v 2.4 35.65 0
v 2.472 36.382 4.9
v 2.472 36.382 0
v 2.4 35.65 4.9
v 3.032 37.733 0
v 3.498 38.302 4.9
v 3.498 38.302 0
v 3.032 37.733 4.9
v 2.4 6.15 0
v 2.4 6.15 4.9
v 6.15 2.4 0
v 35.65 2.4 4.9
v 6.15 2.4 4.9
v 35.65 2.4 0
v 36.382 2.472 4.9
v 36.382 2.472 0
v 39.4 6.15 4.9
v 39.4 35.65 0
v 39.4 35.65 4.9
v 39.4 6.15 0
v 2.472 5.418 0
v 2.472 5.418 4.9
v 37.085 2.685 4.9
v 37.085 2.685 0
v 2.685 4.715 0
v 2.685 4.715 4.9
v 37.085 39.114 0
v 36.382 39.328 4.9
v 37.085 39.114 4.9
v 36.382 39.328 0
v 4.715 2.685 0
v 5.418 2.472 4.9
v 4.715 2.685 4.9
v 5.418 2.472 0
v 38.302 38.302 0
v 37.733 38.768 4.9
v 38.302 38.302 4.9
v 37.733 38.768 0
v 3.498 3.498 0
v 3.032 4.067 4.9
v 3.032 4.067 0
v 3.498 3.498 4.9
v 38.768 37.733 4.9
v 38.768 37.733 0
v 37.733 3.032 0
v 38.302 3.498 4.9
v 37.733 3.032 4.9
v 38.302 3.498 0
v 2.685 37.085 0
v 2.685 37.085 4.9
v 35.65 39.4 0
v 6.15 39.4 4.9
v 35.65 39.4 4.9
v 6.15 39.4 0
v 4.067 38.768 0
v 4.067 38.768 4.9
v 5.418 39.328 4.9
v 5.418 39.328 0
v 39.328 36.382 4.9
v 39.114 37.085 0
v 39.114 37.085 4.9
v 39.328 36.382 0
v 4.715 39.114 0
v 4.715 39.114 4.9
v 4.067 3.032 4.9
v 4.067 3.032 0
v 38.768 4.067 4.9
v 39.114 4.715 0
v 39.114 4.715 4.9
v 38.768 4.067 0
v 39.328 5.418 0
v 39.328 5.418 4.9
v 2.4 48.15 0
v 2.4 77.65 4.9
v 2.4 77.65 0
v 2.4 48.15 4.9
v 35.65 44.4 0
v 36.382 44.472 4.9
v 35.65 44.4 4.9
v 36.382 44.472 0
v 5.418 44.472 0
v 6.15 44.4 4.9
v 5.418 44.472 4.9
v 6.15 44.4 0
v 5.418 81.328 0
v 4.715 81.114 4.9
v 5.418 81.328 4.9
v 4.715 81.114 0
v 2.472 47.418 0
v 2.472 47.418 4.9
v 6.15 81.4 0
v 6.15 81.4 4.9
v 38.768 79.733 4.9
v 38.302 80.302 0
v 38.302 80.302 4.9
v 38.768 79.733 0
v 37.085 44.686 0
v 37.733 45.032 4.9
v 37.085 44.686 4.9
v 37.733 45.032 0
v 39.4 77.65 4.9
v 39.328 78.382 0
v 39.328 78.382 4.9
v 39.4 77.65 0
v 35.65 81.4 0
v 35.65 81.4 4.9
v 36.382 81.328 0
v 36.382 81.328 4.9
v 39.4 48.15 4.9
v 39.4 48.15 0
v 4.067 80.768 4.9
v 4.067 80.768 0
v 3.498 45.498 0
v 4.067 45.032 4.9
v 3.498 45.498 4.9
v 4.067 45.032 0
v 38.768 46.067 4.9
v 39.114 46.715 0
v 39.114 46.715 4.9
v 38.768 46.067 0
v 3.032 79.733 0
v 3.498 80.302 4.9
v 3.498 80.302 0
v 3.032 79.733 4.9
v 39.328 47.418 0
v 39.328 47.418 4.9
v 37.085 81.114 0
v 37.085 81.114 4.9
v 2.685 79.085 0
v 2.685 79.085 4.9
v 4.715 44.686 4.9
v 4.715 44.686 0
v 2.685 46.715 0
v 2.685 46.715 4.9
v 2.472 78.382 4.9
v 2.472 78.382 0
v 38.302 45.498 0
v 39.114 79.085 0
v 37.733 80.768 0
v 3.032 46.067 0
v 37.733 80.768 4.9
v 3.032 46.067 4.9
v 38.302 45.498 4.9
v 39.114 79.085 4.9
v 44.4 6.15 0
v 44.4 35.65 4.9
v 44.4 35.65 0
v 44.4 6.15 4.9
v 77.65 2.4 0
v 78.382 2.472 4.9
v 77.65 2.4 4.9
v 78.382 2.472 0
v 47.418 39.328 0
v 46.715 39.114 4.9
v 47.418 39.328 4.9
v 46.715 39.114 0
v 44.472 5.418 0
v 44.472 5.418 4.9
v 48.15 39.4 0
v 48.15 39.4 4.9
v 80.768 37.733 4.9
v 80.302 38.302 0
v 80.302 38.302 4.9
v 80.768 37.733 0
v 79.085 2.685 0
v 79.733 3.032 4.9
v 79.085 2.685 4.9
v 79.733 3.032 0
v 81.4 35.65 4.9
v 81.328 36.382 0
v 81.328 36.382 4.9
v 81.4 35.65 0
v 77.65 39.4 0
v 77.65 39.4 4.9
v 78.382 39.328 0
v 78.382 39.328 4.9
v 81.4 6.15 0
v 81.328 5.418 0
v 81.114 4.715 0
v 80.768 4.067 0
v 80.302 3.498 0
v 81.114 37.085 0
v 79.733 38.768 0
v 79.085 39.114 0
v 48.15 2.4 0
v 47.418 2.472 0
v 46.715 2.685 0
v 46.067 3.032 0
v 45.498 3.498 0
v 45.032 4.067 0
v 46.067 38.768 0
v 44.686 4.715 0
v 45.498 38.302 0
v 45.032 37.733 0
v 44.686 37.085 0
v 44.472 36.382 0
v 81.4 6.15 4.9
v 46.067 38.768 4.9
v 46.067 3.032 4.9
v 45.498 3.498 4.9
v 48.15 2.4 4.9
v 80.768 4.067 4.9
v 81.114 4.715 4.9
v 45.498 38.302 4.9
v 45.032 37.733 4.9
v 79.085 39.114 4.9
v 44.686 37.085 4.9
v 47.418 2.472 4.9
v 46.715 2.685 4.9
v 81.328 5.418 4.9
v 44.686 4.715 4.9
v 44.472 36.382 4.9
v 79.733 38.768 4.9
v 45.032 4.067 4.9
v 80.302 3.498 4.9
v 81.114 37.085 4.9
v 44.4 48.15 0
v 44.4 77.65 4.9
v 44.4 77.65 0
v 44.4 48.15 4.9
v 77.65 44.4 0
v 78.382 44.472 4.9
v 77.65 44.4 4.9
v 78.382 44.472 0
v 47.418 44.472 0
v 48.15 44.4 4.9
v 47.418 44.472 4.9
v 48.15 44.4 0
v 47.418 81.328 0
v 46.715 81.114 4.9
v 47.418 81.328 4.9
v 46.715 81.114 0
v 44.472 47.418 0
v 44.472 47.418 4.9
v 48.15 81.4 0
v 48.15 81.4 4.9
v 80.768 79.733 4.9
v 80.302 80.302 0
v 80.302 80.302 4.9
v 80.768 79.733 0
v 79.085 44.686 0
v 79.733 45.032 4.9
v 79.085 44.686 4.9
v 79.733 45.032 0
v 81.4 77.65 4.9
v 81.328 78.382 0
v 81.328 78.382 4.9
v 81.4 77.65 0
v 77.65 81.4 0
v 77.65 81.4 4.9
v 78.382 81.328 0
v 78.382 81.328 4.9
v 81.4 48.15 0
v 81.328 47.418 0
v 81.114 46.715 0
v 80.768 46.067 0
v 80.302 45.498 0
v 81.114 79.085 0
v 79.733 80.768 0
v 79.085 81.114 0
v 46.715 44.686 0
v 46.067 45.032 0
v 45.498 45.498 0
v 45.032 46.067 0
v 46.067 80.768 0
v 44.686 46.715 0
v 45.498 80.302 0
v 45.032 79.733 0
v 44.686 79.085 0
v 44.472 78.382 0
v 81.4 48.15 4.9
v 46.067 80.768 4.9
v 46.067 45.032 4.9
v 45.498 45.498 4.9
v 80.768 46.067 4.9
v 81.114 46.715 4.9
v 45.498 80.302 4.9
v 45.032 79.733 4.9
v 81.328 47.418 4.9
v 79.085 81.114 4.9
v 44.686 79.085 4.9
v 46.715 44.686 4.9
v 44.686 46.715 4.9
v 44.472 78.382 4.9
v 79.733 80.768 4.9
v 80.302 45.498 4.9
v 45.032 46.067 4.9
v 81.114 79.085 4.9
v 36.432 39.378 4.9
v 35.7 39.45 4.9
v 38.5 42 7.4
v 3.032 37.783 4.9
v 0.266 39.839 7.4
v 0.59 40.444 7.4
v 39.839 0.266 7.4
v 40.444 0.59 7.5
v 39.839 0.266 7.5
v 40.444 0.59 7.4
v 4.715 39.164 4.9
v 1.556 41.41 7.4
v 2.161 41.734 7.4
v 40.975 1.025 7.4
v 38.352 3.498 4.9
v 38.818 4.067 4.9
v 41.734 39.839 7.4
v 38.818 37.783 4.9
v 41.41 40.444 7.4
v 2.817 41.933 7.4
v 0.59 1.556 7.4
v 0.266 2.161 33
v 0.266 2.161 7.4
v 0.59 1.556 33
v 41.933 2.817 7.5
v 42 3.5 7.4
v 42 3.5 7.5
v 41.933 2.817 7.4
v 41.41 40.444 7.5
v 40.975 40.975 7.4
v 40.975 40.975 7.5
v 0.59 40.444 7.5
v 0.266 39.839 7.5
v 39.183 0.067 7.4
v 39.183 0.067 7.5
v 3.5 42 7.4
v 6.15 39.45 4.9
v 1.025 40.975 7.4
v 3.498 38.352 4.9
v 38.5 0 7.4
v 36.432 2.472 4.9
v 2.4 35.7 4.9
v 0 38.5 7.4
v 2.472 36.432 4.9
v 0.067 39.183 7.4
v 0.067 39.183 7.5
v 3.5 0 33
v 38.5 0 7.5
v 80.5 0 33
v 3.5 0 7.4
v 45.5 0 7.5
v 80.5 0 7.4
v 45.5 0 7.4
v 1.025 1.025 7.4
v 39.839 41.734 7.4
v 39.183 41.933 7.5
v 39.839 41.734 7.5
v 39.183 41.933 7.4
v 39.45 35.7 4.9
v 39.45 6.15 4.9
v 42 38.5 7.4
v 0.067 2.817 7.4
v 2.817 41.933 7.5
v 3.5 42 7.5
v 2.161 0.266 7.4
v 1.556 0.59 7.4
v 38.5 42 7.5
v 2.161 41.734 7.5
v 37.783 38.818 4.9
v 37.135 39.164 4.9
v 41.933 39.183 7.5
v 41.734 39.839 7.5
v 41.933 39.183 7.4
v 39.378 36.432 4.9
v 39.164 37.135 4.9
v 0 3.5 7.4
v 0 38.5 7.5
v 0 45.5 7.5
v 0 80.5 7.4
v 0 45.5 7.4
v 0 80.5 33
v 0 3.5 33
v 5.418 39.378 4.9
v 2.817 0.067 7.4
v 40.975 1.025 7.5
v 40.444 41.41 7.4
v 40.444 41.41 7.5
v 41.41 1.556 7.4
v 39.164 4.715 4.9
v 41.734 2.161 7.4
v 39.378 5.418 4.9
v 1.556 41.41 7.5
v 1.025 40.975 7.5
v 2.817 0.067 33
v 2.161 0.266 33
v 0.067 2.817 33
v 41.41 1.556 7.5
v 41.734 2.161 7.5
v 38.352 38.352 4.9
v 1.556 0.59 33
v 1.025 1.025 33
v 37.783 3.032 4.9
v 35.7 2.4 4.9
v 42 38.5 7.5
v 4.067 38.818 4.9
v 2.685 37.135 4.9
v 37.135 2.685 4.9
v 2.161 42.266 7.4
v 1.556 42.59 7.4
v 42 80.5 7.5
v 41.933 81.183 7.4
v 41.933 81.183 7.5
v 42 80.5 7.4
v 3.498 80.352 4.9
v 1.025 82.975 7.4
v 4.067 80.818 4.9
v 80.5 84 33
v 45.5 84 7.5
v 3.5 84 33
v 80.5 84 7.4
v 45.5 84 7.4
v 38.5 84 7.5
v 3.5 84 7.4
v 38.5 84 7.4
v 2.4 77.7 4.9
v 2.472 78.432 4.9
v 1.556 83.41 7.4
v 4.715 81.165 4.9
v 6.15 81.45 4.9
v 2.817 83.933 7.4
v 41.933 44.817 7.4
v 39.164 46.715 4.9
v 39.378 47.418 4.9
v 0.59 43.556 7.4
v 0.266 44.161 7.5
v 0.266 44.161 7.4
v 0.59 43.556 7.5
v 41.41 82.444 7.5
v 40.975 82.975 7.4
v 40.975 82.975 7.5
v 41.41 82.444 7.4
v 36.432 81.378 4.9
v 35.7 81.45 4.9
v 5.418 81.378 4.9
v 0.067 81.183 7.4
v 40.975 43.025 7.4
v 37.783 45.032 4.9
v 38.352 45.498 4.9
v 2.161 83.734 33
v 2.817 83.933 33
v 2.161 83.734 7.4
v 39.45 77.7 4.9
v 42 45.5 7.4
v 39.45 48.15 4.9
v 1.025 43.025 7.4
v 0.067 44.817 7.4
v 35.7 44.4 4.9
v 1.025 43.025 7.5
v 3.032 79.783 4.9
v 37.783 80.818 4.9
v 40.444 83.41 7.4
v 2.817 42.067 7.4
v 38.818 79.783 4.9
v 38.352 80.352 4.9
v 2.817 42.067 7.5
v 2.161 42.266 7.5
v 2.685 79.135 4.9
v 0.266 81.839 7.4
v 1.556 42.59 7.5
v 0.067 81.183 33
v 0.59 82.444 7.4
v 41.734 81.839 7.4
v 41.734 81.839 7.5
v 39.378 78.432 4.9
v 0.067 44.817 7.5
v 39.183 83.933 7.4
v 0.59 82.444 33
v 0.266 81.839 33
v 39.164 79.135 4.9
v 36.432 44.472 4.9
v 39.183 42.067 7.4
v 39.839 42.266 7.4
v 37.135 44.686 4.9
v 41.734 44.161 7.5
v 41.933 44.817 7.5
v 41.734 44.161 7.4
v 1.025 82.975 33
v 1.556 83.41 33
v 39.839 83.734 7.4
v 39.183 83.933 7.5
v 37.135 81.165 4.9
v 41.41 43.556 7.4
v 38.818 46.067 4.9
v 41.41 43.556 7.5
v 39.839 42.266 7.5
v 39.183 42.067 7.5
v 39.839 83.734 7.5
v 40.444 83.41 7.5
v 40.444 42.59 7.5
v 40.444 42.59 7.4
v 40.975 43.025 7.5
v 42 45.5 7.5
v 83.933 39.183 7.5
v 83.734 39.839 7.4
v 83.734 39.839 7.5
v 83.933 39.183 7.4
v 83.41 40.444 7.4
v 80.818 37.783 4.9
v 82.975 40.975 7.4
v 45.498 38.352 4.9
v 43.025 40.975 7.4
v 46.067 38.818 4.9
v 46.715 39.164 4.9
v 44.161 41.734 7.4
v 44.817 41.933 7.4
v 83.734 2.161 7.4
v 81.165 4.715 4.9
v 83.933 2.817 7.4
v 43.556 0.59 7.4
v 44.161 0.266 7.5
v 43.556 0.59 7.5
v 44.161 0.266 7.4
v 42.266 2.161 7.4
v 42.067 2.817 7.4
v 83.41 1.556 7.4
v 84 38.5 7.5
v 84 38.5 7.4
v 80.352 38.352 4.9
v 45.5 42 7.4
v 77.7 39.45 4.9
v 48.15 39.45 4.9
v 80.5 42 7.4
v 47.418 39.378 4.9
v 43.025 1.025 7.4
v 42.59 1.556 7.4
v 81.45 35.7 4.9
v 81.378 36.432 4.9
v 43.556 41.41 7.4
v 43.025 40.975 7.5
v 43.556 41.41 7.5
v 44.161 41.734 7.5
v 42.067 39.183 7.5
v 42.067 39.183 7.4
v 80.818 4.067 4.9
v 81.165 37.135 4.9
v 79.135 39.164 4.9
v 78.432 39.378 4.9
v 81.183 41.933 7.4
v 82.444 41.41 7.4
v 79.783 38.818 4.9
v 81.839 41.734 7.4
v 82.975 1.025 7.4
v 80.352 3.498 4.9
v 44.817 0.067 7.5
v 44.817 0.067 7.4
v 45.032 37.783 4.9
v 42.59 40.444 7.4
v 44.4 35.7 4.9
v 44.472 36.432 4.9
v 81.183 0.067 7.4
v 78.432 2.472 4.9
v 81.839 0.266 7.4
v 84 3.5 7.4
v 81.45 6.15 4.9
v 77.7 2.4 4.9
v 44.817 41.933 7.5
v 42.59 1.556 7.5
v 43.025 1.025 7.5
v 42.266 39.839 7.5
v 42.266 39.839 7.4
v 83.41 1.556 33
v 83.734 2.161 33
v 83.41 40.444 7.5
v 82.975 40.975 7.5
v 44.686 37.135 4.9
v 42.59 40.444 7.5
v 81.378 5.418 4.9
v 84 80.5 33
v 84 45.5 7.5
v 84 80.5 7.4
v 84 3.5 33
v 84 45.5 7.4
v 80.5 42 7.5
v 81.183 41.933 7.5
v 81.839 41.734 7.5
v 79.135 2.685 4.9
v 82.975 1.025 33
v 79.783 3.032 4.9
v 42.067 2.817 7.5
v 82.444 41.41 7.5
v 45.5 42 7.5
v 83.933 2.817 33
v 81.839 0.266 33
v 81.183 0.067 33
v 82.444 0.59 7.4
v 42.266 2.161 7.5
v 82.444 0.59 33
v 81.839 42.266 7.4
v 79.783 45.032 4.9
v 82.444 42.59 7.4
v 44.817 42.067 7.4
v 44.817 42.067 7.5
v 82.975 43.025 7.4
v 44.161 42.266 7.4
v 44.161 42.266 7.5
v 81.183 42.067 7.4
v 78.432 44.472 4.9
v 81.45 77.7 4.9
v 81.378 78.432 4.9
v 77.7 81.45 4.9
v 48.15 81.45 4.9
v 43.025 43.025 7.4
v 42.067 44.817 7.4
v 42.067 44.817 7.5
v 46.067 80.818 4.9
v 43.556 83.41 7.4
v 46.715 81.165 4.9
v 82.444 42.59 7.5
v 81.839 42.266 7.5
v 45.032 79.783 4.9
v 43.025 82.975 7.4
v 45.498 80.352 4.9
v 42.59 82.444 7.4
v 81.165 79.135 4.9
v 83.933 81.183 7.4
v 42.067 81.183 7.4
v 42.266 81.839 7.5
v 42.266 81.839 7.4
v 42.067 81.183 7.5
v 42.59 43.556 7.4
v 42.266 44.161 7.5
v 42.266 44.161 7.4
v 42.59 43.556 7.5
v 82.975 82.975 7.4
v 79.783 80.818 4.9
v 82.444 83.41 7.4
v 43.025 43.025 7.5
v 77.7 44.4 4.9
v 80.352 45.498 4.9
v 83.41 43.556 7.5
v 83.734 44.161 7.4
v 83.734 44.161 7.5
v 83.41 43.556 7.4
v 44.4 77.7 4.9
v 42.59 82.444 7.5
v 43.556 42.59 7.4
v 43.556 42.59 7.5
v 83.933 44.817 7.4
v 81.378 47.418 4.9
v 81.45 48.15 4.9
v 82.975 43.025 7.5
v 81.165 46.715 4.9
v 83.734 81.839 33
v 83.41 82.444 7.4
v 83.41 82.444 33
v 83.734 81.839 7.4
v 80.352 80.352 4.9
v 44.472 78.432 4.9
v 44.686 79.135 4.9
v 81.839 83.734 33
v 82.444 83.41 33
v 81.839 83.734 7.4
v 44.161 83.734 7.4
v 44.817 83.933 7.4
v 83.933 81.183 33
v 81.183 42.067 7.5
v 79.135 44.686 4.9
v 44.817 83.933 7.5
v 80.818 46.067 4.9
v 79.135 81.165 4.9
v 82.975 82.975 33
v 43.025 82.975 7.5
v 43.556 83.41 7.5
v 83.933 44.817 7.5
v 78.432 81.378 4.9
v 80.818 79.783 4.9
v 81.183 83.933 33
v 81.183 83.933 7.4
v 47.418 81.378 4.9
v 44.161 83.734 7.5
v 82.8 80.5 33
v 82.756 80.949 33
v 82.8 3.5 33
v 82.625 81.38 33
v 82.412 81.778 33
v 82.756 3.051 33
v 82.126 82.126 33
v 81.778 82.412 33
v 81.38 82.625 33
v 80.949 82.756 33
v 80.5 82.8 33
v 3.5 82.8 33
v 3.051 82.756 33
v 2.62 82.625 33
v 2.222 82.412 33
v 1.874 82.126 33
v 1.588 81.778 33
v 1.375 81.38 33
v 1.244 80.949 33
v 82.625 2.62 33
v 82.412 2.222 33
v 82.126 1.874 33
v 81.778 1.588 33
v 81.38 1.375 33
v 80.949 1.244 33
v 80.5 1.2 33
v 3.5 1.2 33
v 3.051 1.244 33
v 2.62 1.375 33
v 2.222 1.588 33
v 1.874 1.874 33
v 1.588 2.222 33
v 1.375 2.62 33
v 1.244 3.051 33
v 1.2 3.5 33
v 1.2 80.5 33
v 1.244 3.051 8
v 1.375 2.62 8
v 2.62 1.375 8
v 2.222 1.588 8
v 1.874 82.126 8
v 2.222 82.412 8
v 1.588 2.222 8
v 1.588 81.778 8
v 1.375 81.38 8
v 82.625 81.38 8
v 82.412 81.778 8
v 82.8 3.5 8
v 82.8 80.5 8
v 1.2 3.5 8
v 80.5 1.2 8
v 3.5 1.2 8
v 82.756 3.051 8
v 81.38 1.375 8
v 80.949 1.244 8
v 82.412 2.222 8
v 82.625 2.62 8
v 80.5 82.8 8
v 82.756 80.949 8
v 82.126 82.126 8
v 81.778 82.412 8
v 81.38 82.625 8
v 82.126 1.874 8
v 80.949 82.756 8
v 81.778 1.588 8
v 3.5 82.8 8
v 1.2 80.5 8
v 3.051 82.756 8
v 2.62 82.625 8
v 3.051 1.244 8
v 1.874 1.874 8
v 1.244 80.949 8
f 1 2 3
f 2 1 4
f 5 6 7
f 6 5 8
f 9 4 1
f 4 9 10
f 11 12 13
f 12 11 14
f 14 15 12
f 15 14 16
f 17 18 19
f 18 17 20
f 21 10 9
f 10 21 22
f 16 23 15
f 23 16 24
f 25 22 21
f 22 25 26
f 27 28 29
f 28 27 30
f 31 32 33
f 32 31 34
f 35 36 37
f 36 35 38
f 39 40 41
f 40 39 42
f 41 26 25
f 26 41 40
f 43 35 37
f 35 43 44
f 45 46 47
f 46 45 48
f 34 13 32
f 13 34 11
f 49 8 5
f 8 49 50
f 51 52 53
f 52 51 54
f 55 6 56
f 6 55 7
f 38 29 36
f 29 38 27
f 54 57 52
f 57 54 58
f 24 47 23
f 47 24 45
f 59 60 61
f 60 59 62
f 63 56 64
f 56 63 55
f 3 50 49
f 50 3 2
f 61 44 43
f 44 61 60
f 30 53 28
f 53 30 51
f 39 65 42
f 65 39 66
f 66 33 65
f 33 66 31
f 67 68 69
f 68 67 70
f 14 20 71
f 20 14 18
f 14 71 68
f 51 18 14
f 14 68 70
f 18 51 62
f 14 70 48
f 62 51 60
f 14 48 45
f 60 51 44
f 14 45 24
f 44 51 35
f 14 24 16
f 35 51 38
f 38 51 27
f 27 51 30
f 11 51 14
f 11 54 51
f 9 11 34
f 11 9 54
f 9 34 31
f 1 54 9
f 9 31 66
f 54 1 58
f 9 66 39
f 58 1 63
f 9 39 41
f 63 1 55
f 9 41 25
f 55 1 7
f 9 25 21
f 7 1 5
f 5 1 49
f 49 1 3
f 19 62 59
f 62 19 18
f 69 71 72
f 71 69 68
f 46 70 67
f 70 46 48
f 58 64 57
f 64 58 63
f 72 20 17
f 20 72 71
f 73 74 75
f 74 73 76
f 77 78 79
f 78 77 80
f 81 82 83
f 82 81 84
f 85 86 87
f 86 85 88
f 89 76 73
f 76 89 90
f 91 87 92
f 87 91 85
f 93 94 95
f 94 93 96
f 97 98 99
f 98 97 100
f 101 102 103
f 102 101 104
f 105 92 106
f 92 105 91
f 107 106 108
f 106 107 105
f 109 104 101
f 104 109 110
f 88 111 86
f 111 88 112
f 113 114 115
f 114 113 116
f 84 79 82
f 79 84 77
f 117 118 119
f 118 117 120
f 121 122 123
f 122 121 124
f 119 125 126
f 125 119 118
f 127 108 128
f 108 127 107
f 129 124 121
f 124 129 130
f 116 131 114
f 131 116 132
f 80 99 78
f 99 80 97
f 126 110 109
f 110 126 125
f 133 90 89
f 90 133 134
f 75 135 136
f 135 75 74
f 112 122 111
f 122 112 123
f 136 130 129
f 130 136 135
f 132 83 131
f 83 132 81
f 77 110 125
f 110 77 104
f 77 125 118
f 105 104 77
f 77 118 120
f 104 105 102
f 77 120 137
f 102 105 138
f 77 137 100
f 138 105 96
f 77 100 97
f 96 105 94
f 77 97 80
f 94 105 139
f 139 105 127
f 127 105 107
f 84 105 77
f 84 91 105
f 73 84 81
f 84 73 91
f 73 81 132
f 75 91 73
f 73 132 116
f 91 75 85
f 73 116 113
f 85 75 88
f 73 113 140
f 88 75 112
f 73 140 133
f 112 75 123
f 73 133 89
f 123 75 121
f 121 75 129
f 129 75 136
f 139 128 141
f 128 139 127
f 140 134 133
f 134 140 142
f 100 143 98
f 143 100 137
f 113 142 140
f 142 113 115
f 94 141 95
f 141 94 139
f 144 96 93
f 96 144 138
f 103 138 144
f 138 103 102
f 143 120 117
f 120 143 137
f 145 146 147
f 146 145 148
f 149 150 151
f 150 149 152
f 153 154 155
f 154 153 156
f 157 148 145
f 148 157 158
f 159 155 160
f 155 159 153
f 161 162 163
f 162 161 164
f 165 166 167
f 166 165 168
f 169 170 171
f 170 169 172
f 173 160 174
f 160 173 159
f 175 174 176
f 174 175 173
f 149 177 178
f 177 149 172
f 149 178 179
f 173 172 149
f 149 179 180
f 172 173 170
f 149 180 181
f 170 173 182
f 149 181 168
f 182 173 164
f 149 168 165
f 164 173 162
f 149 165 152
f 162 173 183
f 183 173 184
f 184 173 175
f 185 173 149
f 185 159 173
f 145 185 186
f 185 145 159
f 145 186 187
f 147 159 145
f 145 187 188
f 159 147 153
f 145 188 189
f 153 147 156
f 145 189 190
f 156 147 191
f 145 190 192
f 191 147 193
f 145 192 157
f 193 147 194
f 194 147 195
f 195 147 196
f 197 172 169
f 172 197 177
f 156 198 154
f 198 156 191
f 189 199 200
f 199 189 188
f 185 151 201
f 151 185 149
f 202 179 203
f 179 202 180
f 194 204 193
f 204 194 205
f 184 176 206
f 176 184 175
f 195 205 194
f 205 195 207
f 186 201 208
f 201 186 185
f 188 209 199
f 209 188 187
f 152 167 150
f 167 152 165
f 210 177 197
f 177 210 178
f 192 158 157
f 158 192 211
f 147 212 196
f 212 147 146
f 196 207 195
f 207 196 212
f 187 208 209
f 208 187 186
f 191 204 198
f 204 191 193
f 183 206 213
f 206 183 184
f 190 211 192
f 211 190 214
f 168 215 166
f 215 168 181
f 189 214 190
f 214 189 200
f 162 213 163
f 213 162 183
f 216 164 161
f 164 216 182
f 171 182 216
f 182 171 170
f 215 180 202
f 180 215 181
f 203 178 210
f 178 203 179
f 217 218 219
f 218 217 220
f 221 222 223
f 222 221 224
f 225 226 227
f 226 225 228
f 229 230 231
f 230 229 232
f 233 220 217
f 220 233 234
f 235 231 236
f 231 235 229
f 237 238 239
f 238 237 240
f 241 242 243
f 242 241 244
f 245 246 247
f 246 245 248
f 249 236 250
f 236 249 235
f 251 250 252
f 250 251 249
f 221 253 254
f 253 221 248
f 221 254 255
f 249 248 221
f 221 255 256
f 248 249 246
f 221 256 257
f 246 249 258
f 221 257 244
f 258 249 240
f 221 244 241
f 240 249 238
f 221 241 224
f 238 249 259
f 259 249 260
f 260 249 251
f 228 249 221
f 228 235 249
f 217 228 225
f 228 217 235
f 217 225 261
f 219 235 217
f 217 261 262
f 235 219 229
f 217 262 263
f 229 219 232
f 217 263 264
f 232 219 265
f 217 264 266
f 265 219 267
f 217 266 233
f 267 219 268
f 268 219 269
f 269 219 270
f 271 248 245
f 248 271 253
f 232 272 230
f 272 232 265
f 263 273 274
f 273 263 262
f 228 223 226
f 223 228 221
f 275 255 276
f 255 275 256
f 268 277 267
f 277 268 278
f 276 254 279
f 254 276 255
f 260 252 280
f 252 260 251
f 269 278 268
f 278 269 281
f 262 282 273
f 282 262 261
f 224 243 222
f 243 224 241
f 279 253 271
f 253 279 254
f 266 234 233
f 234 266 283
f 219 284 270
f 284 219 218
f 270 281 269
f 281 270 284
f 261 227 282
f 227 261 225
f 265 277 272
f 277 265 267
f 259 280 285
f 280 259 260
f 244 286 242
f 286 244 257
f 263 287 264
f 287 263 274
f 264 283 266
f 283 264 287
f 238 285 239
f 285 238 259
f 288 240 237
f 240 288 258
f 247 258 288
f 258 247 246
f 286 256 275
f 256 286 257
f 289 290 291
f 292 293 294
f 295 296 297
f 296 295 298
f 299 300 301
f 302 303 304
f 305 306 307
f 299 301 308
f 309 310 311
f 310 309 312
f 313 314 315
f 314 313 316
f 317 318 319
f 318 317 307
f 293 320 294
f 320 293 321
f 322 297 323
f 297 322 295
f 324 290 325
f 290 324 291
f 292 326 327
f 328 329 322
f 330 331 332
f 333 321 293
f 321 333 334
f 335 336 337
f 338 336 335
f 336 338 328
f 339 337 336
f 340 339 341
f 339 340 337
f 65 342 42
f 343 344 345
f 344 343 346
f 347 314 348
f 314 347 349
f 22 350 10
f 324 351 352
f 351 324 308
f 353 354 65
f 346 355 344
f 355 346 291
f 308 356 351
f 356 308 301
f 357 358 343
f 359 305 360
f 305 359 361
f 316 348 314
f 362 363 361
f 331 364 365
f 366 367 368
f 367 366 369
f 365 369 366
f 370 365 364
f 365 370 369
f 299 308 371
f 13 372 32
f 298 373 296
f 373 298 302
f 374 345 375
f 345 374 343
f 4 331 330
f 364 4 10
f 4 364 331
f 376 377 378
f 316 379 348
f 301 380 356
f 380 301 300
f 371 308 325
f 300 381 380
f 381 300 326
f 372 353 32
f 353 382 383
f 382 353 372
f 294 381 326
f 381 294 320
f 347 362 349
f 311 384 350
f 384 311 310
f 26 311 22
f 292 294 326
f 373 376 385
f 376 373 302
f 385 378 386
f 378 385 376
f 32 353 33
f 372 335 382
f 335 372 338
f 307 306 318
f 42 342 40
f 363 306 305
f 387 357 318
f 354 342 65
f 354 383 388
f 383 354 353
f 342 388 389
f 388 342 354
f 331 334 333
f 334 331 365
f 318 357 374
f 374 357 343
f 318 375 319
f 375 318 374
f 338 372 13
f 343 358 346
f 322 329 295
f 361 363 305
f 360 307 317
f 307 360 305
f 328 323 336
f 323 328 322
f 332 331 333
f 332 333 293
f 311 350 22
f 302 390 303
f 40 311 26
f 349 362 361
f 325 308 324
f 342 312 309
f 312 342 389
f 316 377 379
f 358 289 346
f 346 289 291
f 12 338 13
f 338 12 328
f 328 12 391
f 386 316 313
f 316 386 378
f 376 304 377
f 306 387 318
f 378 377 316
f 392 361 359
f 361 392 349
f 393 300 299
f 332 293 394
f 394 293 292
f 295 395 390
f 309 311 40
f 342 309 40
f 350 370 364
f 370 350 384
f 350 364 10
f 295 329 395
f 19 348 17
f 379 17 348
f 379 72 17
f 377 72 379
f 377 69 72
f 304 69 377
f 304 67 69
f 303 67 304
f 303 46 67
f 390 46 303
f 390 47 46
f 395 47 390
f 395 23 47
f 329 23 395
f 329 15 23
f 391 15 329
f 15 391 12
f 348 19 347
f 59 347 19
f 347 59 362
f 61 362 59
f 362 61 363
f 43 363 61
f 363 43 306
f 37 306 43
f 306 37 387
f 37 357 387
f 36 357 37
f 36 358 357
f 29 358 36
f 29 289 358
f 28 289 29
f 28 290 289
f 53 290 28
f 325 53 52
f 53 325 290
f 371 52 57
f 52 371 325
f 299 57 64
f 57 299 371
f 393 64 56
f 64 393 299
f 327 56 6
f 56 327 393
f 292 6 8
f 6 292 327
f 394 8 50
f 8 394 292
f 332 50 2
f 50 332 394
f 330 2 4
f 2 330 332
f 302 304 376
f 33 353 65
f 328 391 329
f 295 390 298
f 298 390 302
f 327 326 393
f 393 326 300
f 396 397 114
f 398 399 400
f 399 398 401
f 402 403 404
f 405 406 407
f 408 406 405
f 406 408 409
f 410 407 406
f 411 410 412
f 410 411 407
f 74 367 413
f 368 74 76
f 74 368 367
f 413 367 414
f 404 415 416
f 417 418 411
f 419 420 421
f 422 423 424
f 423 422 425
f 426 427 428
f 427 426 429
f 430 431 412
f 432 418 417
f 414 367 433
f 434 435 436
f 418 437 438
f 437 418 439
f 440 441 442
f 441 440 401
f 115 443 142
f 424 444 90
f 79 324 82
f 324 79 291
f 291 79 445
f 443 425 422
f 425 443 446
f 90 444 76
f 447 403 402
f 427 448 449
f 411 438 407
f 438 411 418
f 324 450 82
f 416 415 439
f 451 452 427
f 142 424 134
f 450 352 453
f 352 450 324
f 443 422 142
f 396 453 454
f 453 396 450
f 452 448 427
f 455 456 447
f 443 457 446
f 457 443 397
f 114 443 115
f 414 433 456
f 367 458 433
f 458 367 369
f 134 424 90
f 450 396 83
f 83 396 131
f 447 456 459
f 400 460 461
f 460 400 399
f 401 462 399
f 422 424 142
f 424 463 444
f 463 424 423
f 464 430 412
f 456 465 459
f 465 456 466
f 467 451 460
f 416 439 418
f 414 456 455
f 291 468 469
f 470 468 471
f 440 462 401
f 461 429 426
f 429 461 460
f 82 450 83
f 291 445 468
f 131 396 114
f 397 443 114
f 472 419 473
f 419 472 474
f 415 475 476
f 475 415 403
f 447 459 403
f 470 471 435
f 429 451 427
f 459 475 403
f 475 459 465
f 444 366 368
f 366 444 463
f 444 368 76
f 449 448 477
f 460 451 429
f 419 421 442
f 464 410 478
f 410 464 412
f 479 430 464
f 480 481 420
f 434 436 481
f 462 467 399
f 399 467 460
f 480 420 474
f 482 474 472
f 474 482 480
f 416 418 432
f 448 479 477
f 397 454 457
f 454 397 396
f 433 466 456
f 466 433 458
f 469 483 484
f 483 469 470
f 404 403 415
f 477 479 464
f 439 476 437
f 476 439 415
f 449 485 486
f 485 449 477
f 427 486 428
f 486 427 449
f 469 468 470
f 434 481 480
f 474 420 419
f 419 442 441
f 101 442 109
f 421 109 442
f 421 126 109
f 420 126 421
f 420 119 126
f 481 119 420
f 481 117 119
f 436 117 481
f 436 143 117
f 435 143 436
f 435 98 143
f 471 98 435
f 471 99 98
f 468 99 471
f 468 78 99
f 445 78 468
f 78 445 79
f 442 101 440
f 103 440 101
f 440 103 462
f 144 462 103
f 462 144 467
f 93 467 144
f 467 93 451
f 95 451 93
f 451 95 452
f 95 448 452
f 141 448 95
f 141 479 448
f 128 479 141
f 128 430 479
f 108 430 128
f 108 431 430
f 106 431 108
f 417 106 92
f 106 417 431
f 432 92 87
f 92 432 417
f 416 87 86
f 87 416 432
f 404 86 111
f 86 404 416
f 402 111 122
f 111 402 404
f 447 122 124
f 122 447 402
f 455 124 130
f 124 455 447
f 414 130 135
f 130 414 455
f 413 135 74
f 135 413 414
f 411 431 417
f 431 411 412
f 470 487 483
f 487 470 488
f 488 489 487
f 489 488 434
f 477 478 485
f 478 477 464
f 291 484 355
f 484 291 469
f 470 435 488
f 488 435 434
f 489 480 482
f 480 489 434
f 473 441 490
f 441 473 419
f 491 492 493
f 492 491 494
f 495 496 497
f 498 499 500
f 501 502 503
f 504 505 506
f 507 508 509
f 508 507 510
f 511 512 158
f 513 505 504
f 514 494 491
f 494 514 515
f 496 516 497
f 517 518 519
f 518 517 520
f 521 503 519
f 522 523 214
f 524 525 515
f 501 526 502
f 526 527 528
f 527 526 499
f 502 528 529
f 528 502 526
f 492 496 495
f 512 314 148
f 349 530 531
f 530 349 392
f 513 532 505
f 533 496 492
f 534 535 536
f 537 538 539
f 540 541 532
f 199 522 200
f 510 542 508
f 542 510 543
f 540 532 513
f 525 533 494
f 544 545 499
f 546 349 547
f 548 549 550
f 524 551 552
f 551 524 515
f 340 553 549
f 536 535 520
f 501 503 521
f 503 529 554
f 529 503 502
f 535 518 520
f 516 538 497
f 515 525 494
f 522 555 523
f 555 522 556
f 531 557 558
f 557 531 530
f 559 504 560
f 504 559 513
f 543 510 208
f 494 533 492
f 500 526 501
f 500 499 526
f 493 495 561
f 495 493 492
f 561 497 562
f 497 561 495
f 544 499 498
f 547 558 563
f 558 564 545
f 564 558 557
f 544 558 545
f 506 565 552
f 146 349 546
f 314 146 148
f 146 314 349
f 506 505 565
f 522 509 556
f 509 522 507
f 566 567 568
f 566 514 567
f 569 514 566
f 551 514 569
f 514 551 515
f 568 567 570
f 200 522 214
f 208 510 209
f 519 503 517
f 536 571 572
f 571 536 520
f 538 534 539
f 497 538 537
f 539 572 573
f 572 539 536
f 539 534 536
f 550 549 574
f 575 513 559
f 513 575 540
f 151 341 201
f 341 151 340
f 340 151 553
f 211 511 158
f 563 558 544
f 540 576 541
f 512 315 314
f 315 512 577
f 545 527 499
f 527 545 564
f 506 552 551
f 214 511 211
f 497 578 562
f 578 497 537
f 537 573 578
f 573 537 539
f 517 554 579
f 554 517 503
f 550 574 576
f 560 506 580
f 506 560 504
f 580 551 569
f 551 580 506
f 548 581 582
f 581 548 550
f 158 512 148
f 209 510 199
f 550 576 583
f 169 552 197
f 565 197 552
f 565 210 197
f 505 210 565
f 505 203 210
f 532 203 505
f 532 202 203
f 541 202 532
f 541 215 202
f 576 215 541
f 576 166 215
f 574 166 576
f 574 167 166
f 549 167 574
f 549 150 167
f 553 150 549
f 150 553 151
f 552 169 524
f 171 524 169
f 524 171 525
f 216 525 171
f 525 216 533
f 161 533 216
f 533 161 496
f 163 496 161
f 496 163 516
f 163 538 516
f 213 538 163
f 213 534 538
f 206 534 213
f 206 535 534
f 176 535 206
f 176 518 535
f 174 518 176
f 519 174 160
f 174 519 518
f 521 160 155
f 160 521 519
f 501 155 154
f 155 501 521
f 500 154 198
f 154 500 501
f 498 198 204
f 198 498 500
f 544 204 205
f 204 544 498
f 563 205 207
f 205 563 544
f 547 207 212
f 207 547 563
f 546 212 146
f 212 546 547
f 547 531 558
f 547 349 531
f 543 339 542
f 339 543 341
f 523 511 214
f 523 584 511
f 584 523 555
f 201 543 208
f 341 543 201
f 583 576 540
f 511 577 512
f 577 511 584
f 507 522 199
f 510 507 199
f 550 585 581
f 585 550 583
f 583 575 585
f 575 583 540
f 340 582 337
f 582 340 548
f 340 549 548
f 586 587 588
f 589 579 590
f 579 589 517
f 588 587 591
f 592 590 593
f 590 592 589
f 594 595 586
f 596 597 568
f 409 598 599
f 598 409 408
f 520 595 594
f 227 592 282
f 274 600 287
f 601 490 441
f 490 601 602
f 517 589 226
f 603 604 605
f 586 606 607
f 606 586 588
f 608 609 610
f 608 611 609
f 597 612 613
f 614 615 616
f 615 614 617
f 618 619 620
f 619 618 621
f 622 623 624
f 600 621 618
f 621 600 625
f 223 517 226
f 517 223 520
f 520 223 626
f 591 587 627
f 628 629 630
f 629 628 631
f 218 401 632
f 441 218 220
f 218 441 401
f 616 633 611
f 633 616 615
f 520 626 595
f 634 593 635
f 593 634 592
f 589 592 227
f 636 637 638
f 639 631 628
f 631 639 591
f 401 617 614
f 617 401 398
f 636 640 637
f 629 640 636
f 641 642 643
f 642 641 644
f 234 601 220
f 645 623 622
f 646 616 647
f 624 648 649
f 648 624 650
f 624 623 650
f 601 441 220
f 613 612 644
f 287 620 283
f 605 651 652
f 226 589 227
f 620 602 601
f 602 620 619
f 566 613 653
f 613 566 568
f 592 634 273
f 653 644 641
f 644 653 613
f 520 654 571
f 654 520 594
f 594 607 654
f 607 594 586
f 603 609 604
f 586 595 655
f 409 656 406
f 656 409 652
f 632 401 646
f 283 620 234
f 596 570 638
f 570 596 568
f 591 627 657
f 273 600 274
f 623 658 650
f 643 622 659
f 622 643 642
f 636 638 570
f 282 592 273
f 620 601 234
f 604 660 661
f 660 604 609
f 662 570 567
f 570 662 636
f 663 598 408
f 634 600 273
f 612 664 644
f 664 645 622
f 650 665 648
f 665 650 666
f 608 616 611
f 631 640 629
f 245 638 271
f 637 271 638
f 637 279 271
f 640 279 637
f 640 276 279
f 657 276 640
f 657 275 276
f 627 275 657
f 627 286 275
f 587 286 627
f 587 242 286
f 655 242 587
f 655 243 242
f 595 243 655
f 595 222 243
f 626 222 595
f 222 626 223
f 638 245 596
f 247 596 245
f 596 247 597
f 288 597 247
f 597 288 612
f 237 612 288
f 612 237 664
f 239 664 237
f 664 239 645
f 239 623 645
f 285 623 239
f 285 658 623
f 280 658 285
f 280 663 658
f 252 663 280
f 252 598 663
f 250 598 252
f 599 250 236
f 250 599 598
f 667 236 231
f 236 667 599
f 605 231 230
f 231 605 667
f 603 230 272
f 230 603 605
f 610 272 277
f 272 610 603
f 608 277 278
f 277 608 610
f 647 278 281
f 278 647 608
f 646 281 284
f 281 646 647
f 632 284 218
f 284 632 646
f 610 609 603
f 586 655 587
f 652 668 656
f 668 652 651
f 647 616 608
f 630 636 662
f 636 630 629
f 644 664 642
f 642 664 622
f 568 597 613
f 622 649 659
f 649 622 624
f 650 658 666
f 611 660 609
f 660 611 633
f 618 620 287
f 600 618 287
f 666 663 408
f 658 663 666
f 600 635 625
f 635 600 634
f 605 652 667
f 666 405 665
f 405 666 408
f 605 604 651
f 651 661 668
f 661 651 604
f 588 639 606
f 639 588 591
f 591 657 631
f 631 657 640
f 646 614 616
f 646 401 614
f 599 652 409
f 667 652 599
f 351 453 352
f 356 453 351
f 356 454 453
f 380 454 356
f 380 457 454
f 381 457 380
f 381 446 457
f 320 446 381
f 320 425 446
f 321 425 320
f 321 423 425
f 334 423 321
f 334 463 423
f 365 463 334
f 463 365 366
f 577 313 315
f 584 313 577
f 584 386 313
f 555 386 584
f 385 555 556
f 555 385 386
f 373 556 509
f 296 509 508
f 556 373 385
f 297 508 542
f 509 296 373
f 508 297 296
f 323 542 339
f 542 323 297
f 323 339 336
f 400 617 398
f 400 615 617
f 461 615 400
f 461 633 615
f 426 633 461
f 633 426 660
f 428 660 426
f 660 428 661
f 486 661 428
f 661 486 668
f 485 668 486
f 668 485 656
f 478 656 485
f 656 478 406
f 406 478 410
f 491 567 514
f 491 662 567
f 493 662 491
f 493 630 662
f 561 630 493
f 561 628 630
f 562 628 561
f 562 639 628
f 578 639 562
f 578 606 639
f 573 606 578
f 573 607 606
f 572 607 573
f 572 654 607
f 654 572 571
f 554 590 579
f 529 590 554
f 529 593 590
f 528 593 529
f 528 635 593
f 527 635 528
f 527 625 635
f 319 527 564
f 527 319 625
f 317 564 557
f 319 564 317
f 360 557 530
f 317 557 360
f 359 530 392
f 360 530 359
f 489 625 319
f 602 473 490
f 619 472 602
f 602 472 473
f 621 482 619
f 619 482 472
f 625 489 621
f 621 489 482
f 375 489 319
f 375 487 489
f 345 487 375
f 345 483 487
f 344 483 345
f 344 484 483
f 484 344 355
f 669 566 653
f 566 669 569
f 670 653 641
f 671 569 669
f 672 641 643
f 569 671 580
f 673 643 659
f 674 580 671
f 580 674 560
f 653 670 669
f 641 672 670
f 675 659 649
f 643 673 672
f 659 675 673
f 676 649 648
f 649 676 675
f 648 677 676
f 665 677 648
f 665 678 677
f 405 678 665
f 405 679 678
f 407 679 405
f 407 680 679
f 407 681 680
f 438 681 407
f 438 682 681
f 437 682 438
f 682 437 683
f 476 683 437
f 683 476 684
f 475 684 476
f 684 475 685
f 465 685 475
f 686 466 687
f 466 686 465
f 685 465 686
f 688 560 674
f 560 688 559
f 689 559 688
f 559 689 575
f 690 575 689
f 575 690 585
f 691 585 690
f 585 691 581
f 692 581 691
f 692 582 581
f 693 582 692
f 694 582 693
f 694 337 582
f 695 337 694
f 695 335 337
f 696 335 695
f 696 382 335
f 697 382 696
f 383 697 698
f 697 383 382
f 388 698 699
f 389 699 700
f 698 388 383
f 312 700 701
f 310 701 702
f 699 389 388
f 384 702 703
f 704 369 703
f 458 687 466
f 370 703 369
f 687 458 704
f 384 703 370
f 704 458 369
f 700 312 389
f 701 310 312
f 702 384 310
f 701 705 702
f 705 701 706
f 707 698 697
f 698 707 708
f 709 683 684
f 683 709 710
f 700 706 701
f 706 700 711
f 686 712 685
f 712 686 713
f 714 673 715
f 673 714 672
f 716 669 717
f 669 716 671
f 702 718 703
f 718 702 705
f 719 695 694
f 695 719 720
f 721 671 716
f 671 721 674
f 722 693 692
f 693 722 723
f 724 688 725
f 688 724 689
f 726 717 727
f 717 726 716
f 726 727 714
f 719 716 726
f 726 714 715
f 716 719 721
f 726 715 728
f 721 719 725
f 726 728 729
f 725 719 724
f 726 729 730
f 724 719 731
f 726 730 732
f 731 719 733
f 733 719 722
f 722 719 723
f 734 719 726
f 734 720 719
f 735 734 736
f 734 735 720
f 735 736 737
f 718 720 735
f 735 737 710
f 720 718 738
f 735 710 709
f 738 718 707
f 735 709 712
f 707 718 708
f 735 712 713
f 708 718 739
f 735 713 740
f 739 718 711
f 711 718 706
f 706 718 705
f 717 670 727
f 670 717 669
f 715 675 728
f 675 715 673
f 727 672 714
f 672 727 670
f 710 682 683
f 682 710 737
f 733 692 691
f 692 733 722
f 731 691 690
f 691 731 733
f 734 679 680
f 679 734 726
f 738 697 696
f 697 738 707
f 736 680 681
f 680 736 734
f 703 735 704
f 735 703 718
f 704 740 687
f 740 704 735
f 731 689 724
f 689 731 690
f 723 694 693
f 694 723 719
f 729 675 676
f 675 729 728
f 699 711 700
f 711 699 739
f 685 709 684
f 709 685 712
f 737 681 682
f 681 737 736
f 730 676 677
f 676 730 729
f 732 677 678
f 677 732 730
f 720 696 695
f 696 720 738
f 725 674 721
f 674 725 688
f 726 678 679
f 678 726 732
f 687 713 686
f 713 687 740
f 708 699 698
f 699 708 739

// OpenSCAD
/*
Gridifnity Base Configurável
Este arquivo define quantidade de blocos da caixa do sistema Gridifnity.
Gridifnity é um sistema modular de blocos que permite a construção de estruturas personalizadas.
A configuração da caixa é feita através de variáveis que definem o número de blocos em
cada direção (X, Y).
Quando for mais de 1 bloco em X ou Y, a caixa espaçará os blocos de acordo com a espessura interna definida e os conectar.
O diâmetro da base será ajustável mas o padrão é 37 mm (medida do bloco padrão) pois a base é 37.7mm.
*/

// Configuração da caixa
medida_bloco = 42; // Medida de cada bloco em mm
tamanho_base = 37.2; // Tamanho da base quadrada de encaixe (encaixa no grid de 37.7mm)

// Defina a espessura das paredes da caixa
// Valores padrão: 2.0 mm para espessura das paredes, 2.0 mm para espessura do fundo
espessura_parede = 1.2; // Espessura das paredes da caixa
espessura_fundo = 3.0; // Espessura do fundo da caixa
altura_transicao = 2.5; // Altura da zona de transição suave
// Defina a espessura interna (espaçamento entre blocos quando múltiplos)
espessura_interna = 4.3; // Espessura das linhas entre os blocos

// Defina o número de blocos da caixa
// Valores padrão: 1 bloco em X e 1 bloco em Y
num_blocos_x = 2; // Número de blocos na direção X
num_blocos_y = 2; // Número de blocos na direção Y

// Defina a altura da caixa (altura útil interna)
altura_caixa = 30; // Altura útil da caixa em mm

// Raio de arredondamento dos cantos internos e externos
raio_canto = 3.5; // Raio de arredondamento dos cantos

// =========================================================
// Função para calcular a largura total da caixa
// =========================================================
function calcular_largura_total_caixa(num_blocos) = 
    (num_blocos * medida_bloco);

// =========================================================
// Função para calcular offset do bloco (posição central)
// =========================================================
function calcular_offset_bloco(indice) = 
    (medida_bloco / 2) + (indice * medida_bloco);

// =========================================================
// Módulo para criar uma base quadrada para encaixe
// =========================================================
module base_encaixe() {
    altura_base = 5; // Altura da base de encaixe
    tolerancia = 0.20; // Tolerância para encaixe
    raio_canto_base = 3.75; // Raio de arredondamento dos cantos da base
    
    // Base quadrada com cantos arredondados para encaixe
    hull() {
        translate([raio_canto_base, raio_canto_base, 0])
            cylinder(r=raio_canto_base, h=altura_base, $fn=32);
        translate([tamanho_base - tolerancia - raio_canto_base, raio_canto_base, 0])
            cylinder(r=raio_canto_base, h=altura_base, $fn=32);
        translate([raio_canto_base, tamanho_base - tolerancia - raio_canto_base, 0])
            cylinder(r=raio_canto_base, h=altura_base, $fn=32);
        translate([tamanho_base - tolerancia - raio_canto_base, tamanho_base - tolerancia - raio_canto_base, 0])
            cylinder(r=raio_canto_base, h=altura_base, $fn=32);
    }
}

// =========================================================
// Módulo para criar uma caixa com cantos arredondados
// =========================================================
module caixa_arredondada(largura, profundidade, altura, raio) {
    hull() {
        // Criar cilindros nos 4 cantos para arredondar
        translate([raio, raio, 0])
            cylinder(r=raio, h=altura, $fn=32);
        translate([largura - raio, raio, 0])
            cylinder(r=raio, h=altura, $fn=32);
        translate([raio, profundidade - raio, 0])
            cylinder(r=raio, h=altura, $fn=32);
        translate([largura - raio, profundidade - raio, 0])
            cylinder(r=raio, h=altura, $fn=32);
    }
}

// =========================================================
// Módulo principal para criar a caixa Gridifnity
// =========================================================
module gridifnity_caixa() {
    largura_total_x = calcular_largura_total_caixa(num_blocos_x);
    largura_total_y = calcular_largura_total_caixa(num_blocos_y);
    altura_total = altura_caixa + espessura_fundo;
    
    // Calcular dimensões
    // Cada bloco tem 42mm, as pontes internas têm espessura_interna
    largura_util = medida_bloco; // Largura de cada bloco (42mm)
    
    difference() {
        union() {
            // Criar as bases de encaixe para cada bloco
            for (x = [0:num_blocos_x-1]) {
                for (y = [0:num_blocos_y-1]) {
                    translate([
                        calcular_offset_bloco(x) - (tamanho_base / 2),
                        calcular_offset_bloco(y) - (tamanho_base / 2),
                        0
                    ]) {
                        base_encaixe();
                    }
                }
            }
            
            // Criar estrutura completa conectada (caixas + pontes integradas)
            // Primeiro: transições de cada base para a estrutura superior
            for (x = [0:num_blocos_x-1]) {
                for (y = [0:num_blocos_y-1]) {
                    hull() {
                        // Topo da base de encaixe
                        translate([
                            calcular_offset_bloco(x) - (tamanho_base / 2),
                            calcular_offset_bloco(y) - (tamanho_base / 2),
                            4.9
                        ]) {
                            hull() {
                                translate([3.75, 3.75, 0])
                                    cylinder(r=3.75, h=0.2, $fn=32);
                                translate([tamanho_base - 0.15 - 3.75, 3.75, 0])
                                    cylinder(r=3.75, h=0.2, $fn=32);
                                translate([3.75, tamanho_base - 0.15 - 3.75, 0])
                                    cylinder(r=3.75, h=0.2, $fn=32);
                                translate([tamanho_base - 0.15 - 3.75, tamanho_base - 0.15 - 3.75, 0])
                                    cylinder(r=3.75, h=0.2, $fn=32);
                            }
                        }
                        
                        // Início da estrutura superior (centrada no bloco)
                        translate([
                            calcular_offset_bloco(x) - (largura_util / 2),
                            calcular_offset_bloco(y) - (largura_util / 2),
                            5 + altura_transicao - 0.1
                        ])
                            caixa_arredondada(
                                largura_util, 
                                largura_util, 
                                0.2, 
                                raio_canto
                            );
                    }
                }
            }
            
            // Segundo: criar corpo sólido conectado
            // Calcular dimensão total (cada bloco é 42mm)
            largura_corpo_x = num_blocos_x * medida_bloco;
            largura_corpo_y = num_blocos_y * medida_bloco;
            
            translate([0, 0, 5 + altura_transicao])
                caixa_arredondada(
                    largura_corpo_x,
                    largura_corpo_y,
                    altura_total - 5 - altura_transicao,
                    raio_canto
                );
        }
        
        // Remover o interior da caixa (cavidade única, sem divisórias)
        largura_corpo_x = num_blocos_x * medida_bloco;
        largura_corpo_y = num_blocos_y * medida_bloco;
        
        translate([
            espessura_parede,
            espessura_parede,
            espessura_fundo + 5
        ])
            caixa_arredondada(
                largura_corpo_x - (2 * espessura_parede), 
                largura_corpo_y - (2 * espessura_parede), 
                altura_caixa + altura_transicao + 1, 
                raio_canto - espessura_parede
            );
    }
}

// =========================================================
// Gerar a caixa
// =========================================================
gridifnity_caixa();
